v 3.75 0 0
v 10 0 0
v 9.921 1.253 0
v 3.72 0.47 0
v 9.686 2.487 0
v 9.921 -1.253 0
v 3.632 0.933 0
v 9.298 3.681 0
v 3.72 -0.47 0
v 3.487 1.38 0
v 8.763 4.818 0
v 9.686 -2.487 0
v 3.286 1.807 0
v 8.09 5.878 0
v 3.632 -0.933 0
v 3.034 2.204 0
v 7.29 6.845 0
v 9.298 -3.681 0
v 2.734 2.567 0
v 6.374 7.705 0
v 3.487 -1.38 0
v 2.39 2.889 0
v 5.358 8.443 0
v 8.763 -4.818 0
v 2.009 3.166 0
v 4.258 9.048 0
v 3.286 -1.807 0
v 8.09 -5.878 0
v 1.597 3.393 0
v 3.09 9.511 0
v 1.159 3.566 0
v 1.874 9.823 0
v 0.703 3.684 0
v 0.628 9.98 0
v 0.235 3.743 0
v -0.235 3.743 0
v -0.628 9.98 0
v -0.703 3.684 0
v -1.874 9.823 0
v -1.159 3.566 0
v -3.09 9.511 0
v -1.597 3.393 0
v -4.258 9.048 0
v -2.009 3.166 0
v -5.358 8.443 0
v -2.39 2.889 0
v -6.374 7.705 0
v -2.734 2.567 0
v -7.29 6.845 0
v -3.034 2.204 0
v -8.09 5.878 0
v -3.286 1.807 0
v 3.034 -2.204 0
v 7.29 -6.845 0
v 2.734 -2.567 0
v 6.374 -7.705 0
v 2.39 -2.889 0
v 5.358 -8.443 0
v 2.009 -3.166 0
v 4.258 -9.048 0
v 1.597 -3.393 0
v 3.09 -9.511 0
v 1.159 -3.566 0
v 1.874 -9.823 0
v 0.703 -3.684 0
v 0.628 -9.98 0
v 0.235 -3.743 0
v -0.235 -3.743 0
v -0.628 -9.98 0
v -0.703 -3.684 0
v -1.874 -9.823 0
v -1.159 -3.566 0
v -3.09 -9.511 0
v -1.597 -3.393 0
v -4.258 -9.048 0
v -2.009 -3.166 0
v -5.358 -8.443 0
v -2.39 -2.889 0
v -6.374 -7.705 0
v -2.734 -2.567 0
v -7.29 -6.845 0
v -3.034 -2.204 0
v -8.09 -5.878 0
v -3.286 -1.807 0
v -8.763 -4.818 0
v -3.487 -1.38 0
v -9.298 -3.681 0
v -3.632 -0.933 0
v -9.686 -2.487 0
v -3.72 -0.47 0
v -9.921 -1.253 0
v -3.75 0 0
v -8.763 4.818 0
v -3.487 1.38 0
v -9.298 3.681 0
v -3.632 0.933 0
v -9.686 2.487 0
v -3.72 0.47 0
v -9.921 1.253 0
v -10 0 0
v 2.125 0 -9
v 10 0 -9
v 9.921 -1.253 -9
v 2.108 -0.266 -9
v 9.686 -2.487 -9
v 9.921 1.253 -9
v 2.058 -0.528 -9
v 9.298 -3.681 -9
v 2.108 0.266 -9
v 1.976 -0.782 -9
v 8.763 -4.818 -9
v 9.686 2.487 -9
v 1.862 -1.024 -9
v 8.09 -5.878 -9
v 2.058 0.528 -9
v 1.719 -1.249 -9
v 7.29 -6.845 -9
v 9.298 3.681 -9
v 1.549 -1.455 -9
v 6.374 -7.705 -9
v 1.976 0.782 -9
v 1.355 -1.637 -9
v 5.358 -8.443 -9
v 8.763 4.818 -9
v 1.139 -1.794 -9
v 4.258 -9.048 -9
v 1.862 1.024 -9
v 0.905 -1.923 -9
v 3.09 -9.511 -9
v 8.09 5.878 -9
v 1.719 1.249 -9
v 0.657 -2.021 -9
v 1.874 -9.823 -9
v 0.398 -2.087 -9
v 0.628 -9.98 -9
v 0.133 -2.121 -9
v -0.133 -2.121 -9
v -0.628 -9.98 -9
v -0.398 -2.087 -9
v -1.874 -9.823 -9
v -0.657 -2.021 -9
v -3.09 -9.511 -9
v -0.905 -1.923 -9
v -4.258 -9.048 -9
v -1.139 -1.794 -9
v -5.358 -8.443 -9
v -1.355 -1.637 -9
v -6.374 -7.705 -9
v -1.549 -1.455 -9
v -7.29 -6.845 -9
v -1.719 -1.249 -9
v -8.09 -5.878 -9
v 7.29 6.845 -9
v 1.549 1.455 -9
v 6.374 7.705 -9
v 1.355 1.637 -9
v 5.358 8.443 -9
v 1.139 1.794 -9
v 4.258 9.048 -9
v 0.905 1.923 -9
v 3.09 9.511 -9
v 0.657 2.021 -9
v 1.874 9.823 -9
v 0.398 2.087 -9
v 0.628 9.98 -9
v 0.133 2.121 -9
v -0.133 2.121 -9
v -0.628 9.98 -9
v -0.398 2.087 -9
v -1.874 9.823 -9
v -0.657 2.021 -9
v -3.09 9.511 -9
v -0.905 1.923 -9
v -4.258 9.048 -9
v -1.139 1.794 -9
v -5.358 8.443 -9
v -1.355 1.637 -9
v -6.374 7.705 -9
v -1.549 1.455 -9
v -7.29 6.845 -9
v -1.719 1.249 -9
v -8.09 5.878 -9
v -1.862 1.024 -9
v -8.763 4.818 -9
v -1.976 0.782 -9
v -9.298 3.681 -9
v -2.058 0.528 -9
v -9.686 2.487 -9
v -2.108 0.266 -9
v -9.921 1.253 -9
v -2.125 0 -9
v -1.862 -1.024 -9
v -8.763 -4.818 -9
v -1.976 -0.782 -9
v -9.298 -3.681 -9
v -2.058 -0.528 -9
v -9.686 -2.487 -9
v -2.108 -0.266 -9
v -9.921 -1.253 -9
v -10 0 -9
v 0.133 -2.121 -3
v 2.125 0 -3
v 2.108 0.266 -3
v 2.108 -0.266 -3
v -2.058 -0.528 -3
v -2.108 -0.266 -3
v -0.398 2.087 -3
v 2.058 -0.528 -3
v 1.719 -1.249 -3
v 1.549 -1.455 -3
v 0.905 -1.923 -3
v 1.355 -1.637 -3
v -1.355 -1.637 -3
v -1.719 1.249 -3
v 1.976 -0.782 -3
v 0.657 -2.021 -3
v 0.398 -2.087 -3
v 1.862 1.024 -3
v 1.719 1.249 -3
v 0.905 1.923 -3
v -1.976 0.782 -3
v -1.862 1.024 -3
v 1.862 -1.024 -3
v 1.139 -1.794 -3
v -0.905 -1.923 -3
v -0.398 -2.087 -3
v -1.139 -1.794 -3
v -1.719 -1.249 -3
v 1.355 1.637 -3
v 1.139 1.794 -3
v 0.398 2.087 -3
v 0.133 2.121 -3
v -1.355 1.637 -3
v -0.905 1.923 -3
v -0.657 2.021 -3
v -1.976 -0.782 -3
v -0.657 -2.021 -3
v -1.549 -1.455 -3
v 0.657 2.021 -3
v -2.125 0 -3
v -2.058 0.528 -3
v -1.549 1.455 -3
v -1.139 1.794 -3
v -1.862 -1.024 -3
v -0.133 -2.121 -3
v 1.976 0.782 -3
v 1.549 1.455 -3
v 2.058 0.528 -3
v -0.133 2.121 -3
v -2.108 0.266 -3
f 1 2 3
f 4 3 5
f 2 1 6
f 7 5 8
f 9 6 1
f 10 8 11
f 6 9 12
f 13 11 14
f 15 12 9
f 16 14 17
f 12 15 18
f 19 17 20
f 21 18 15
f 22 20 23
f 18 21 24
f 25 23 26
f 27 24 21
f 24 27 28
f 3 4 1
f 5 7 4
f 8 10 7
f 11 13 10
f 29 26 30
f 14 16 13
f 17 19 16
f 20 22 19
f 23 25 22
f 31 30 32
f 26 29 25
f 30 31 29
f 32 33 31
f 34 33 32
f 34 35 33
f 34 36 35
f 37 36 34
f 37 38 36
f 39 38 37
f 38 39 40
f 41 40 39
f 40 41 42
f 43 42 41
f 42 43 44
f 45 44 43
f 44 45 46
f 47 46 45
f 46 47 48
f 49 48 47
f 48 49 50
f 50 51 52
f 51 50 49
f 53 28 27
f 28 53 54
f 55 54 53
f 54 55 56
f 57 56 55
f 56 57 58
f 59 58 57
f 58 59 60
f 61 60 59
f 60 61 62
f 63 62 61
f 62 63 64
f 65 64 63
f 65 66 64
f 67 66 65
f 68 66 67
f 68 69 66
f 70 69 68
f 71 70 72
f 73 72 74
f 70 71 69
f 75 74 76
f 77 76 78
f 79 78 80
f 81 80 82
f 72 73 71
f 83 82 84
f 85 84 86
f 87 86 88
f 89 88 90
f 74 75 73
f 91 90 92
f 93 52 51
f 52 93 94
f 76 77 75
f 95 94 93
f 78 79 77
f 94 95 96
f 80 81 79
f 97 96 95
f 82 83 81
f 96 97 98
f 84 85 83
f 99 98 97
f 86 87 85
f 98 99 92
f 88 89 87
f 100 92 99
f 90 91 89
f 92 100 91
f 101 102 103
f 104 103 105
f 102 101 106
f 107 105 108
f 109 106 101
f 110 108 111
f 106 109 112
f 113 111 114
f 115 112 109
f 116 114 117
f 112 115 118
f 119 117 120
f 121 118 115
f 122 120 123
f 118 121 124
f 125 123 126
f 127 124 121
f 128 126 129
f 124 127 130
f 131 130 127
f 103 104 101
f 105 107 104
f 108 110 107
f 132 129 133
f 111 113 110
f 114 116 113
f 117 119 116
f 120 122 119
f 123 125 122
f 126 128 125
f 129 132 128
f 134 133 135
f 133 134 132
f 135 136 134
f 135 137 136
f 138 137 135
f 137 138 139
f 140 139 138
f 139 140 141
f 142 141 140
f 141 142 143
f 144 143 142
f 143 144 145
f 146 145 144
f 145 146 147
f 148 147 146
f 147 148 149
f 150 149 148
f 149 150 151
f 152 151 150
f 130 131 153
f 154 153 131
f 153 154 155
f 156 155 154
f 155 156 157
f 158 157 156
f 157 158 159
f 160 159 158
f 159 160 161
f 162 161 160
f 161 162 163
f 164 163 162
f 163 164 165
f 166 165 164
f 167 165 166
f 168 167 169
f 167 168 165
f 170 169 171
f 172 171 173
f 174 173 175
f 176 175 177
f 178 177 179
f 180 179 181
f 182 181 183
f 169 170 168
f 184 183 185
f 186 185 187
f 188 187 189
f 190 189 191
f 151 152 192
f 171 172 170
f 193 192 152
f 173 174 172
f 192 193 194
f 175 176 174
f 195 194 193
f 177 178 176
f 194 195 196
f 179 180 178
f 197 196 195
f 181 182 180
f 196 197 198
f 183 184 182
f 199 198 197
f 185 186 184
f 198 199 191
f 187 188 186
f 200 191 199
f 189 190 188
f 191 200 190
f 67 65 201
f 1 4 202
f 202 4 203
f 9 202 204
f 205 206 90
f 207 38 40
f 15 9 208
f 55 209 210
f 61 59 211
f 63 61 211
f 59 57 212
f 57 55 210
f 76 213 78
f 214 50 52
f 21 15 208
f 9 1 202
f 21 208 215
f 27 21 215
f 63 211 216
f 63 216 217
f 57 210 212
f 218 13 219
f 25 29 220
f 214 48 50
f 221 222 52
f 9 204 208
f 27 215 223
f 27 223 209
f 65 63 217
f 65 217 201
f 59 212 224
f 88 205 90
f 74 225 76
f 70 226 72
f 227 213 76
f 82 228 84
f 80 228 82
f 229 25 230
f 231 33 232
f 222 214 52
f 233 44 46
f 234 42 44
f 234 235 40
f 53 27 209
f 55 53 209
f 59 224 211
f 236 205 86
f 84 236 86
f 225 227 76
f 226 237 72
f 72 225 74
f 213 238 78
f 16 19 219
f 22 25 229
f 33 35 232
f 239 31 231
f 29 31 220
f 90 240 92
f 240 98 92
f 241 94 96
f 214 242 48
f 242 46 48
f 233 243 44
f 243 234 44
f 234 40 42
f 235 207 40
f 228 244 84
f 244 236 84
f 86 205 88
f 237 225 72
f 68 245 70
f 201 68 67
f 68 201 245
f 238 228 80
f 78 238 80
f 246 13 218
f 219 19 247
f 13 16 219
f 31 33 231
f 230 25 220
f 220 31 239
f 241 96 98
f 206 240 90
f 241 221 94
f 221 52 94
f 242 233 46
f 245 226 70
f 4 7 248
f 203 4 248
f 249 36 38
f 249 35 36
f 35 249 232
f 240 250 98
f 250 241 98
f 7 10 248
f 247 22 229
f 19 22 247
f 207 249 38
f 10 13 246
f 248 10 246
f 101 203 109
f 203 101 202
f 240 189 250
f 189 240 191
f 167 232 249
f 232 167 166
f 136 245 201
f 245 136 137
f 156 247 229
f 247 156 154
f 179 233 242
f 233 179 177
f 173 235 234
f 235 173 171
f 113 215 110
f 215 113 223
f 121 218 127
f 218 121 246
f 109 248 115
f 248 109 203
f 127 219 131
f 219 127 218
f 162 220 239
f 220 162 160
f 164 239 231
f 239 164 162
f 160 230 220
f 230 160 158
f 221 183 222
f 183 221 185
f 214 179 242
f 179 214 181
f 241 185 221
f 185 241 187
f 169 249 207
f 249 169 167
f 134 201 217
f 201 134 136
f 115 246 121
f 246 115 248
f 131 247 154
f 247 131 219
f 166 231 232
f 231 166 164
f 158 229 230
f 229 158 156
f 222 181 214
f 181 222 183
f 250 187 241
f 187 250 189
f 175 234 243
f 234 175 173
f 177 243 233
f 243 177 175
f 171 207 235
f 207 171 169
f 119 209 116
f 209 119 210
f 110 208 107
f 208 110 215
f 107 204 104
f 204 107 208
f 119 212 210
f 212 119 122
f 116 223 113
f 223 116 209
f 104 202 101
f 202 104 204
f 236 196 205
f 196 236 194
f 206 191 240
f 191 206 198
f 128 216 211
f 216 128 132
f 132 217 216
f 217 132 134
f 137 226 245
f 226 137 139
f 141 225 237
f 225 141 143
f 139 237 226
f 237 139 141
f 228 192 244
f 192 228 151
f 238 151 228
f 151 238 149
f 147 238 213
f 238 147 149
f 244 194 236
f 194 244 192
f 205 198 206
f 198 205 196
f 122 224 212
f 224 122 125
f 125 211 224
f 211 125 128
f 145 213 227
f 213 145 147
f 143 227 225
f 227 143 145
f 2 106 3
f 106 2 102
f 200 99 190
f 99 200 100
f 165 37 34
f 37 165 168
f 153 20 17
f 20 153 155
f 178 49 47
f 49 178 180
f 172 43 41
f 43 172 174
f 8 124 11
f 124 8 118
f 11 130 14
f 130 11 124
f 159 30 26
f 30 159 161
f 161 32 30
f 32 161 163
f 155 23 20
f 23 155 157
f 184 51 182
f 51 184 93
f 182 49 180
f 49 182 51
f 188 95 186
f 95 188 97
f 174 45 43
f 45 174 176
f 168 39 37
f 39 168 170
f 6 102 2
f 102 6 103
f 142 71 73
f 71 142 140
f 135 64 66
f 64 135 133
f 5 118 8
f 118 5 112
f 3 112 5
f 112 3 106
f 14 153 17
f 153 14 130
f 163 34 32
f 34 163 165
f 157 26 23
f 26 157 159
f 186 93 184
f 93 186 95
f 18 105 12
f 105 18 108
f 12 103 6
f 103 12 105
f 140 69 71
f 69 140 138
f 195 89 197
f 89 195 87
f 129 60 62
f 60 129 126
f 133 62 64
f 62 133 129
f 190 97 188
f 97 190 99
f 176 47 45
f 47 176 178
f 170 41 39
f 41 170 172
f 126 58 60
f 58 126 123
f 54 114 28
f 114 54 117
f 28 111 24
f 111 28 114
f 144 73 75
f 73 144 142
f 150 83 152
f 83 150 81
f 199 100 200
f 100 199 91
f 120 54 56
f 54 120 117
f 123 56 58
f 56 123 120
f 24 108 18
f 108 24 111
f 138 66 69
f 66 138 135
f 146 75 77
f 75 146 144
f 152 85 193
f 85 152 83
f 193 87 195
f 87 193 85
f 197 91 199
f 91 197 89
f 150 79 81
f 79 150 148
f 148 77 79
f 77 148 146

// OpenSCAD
$fn = 50;


difference() {
	union() {
		translate(v = [0, 0, -9.0000000000]) {
			cylinder(h = 9, r = 10.0000000000);
		}
		cylinder(h = 0, r = 19.0000000000);
	}
	union() {
		translate(v = [0, 0, 0]) {
			rotate(a = [0, 0, 0]) {
				difference() {
					union() {
						#translate(v = [0, 0, -9.0000000000]) {
							cylinder(h = 9, r = 2.0000000000);
						}
						#translate(v = [0, 0, -3]) {
							cylinder(h = 3, r1 = 2.1250000000, r2 = 3.7500000000);
						}
						#translate(v = [0, 0, -9.0000000000]) {
							cylinder(h = 9, r = 2.1250000000);
						}
						#translate(v = [0, 0, -9.0000000000]) {
							cylinder(h = 9, r = 2.0000000000);
						}
					}
					union();
				}
			}
		}
	}
}
